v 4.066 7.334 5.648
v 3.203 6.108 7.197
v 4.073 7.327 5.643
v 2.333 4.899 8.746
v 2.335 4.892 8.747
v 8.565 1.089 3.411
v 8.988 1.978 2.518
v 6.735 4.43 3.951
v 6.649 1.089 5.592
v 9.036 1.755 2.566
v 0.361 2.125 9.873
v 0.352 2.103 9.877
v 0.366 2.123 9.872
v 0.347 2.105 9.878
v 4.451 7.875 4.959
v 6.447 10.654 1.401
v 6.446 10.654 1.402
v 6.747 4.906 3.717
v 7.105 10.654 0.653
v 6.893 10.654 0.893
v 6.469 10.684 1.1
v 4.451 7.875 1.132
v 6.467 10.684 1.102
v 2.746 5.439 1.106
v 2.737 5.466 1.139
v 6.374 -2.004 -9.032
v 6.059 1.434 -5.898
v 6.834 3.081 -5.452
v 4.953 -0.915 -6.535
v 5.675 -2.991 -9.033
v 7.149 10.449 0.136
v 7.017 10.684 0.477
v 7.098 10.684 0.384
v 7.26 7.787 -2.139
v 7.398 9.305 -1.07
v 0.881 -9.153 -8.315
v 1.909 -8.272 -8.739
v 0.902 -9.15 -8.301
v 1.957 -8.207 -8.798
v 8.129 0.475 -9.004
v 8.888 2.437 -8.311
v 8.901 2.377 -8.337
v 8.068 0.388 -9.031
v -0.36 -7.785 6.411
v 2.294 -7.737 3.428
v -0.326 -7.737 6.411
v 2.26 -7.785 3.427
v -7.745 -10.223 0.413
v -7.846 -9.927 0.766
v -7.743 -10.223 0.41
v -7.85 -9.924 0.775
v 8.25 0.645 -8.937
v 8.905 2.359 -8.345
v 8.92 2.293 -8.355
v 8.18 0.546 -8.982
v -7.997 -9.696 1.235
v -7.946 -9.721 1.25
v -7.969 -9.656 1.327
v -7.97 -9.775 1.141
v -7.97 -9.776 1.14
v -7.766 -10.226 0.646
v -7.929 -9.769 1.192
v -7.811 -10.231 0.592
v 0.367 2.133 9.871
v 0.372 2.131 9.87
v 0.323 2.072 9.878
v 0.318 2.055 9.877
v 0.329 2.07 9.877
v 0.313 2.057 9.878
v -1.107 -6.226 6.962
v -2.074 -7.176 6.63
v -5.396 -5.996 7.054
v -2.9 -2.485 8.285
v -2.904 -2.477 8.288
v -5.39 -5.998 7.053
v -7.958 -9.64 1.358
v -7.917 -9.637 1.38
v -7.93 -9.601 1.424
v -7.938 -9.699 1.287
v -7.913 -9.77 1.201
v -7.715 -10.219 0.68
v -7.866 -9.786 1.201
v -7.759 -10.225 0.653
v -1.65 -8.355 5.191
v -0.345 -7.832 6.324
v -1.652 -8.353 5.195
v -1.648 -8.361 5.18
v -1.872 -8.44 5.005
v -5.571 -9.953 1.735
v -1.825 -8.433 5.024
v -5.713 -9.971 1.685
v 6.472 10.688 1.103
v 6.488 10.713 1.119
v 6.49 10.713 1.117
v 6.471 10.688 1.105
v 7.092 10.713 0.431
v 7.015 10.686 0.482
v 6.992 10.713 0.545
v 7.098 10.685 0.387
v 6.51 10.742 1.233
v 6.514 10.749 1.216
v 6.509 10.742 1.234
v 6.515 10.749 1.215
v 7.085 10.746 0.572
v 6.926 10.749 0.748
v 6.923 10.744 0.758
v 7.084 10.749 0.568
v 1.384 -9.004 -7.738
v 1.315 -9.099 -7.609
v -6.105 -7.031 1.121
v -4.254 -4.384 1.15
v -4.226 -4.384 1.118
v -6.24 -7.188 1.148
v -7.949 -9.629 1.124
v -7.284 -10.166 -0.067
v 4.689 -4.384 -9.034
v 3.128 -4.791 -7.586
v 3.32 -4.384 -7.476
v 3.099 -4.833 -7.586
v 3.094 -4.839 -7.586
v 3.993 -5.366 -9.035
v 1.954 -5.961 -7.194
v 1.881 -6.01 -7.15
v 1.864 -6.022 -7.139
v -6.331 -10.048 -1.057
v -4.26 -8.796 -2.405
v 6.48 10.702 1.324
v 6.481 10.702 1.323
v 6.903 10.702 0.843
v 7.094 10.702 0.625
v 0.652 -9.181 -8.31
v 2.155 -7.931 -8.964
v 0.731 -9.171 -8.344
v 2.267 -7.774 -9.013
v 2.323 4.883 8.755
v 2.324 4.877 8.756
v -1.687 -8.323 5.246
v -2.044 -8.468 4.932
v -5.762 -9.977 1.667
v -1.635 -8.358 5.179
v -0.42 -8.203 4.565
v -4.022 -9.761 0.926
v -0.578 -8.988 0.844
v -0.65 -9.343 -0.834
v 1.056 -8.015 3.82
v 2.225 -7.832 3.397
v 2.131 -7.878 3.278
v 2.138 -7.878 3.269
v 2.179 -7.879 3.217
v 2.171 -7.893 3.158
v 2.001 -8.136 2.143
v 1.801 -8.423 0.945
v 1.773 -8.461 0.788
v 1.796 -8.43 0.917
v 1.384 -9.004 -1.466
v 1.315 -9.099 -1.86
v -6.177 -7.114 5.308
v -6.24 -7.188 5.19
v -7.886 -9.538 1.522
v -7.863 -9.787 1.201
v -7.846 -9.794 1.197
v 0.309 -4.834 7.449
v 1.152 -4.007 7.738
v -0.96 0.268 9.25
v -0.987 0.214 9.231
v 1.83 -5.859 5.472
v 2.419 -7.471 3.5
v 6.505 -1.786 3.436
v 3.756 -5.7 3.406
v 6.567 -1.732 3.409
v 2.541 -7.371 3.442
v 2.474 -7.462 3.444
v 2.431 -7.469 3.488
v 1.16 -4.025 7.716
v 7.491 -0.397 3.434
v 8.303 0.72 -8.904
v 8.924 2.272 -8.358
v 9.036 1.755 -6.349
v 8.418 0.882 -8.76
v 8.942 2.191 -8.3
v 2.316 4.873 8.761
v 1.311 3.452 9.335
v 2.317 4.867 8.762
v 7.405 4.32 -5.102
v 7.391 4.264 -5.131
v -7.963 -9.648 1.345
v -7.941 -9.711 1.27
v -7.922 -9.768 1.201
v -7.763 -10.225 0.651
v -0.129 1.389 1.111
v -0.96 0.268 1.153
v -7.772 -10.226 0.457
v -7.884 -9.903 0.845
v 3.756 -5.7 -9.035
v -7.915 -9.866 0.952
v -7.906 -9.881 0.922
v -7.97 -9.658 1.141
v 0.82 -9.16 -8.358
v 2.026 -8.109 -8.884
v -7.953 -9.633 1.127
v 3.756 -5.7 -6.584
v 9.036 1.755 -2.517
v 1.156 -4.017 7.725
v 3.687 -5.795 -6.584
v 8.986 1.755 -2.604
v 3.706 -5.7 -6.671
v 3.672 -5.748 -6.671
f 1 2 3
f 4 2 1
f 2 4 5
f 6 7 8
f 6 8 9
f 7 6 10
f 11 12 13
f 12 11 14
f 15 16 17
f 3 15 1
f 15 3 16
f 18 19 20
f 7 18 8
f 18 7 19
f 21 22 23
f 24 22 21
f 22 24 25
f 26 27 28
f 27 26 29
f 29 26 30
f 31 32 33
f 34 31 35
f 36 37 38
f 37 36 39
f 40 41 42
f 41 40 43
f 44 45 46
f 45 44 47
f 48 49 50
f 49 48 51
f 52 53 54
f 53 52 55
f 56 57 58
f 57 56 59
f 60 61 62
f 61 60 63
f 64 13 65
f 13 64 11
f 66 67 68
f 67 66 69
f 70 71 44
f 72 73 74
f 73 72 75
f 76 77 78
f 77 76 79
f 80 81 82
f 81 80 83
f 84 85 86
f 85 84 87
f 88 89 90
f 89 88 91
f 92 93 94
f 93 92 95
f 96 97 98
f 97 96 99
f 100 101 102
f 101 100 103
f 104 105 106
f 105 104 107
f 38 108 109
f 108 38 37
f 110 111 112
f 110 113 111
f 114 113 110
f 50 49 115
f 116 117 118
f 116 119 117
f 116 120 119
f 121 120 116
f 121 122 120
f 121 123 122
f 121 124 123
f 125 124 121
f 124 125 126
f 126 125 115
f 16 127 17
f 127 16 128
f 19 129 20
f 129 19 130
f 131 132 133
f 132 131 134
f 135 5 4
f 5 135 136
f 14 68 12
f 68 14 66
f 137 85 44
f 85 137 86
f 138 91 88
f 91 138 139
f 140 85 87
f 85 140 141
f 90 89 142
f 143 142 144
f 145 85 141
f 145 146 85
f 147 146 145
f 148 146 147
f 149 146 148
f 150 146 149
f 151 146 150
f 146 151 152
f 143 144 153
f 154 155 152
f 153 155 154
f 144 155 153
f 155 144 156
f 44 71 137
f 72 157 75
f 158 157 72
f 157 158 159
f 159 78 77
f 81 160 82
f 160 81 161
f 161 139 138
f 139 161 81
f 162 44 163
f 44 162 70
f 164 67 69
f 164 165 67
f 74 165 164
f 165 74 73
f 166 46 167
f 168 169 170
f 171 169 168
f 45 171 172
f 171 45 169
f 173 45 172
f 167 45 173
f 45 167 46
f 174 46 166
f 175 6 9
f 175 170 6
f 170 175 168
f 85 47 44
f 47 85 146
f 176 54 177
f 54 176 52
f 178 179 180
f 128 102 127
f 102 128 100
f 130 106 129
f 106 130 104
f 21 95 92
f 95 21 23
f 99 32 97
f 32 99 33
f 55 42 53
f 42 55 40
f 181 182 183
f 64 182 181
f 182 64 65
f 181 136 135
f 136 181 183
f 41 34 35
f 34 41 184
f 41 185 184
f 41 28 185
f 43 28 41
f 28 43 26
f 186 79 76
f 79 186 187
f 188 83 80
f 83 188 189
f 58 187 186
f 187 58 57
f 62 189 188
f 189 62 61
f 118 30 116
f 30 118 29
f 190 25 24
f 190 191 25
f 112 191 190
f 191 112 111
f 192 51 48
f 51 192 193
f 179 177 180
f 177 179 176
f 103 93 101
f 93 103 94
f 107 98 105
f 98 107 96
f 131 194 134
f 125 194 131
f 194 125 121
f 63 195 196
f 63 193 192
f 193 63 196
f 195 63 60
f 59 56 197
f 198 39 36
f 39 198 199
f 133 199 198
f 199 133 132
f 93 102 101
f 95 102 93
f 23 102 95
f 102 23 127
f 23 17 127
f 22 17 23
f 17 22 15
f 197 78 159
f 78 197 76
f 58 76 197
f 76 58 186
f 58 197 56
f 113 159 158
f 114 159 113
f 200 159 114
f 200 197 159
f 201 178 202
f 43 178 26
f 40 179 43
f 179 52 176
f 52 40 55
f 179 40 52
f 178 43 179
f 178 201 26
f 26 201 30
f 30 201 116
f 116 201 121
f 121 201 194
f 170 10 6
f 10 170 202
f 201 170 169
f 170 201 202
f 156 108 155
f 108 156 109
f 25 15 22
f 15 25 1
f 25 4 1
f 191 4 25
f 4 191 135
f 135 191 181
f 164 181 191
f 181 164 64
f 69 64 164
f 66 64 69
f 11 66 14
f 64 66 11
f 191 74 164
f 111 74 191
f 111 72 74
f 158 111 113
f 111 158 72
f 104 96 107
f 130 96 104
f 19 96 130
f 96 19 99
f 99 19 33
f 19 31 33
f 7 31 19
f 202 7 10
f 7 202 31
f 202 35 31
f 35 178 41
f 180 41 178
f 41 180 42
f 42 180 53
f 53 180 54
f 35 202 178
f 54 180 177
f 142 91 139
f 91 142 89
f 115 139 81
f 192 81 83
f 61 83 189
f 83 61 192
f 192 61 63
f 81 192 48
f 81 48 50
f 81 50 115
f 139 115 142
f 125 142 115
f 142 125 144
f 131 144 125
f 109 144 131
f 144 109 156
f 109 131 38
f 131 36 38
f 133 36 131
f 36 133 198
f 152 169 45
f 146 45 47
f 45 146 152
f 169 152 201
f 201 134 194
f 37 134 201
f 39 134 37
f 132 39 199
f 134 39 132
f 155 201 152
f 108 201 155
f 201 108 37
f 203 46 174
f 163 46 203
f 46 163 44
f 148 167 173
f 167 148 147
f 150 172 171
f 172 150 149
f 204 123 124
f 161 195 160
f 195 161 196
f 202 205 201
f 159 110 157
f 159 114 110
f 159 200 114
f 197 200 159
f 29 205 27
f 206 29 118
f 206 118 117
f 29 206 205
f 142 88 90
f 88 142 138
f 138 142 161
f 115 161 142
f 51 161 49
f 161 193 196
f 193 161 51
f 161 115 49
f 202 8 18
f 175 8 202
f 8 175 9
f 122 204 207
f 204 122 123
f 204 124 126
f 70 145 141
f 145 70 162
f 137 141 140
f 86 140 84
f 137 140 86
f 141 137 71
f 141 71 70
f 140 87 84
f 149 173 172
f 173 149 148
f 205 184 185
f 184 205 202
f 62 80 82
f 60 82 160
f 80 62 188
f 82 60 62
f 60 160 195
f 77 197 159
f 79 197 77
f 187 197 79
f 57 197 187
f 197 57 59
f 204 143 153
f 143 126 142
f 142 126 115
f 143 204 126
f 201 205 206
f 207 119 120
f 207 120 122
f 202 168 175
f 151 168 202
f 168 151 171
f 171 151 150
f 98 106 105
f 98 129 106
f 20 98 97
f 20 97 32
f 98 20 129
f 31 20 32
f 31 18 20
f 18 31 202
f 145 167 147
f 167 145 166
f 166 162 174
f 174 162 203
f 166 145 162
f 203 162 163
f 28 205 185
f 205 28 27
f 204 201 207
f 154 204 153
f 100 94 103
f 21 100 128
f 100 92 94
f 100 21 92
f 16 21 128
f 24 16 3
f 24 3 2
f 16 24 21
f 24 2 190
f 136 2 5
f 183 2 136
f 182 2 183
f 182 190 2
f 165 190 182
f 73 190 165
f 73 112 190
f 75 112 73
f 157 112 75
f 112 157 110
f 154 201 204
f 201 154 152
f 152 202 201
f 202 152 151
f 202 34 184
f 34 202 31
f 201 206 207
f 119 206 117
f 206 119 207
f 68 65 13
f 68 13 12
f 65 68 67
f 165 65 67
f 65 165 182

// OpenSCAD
// Auto-generated OpenSCAD file

    inner_points = 10*[[-0.5843169179657698, -0.6879231760558433, -0.9476863813058384], [-0.8215331245846192, -1.0182565838404067, -0.03411738499587125], [0.6903670649661048, 1.1119849418432066, 0.03411738499587125], [0.4531508583472553, 0.7816515340586432, 0.9476863813058384], [-0.04323343492736341, 0.07283869886099822, -1.3061135483231257], [-0.6159240181612884, -0.7246566943174167, 0.8994371127319727], [0.4847579585427739, 0.8183850523202166, -0.8994371127319727], [-0.08793262469115103, 0.02088965914180165, 1.3061135483231257], [0.36563737174037947, -0.5700346554462439, -0.6583956206905608], [0.12842116512152985, -0.9003680632308071, 0.25517337561940623], [0.8936287652105167, 0.17551169801297445, -0.251719185099408], [0.6564125585916671, -0.1548217097715889, 0.6618498112105591]];

    outer_points = 10*[[-0.9731118629091229, -0.4413118352277251, 0.7519334728152625], [-0.619892288935397, 0.4413118352277251, 1.0621130803228622], [0.619892288935397, -0.4413118352277251, -1.0621130803228622], [0.9731118629091229, 0.4413118352277251, -0.7519334728152625], [-0.7562957052968324, -1.0654210178425345, 0.0012814349347830545], [0.09645178068618293, 1.0654210178425345, 0.7501212501511937], [-0.09645178068618293, -1.0654210178425345, -0.7501212501511937], [0.7562957052968324, 1.0654210178425345, -0.0012814349347830545], [-0.03757443368860547, -0.7737087789198632, 0.632426191231289], [0.3156451402851202, 0.10891489153558698, 0.9426057987388886], [0.622269490922044, -0.7737087789198632, -0.11897649385468778], [0.9754890648957697, 0.10891489153558698, 0.19120311365291187]];

    // Convex hull for inner set (I)
    module inner_hull() {
        hull() {
            for (p = inner_points) {
                translate(p) sphere(r=0.1);
            }
        }
    }

    // Convex hull for outer set (O) minus inner hull (O \ I)
    module outer_minus_inner() {
        difference() {
            hull() {
                for (p = outer_points) {
                    translate(p) sphere(r=0.1);
                }
            }
            inner_hull(); // Subtract inner hull
        }
    }

    // Convex hull for outer set (O) minus all translated inner hulls
    module outer_minus_AllTranslationInner() {
        difference() {
            hull() {
                for (p = outer_points) {
                    translate(p) sphere(r=0.1);
                }
            }
            hull() {
                translate([0,0,50]) inner_hull();
                translate([0,0,-50]) inner_hull();
            }; // Subtract translated inner hulls
        }
    }

    // Difference between outer_minus_inner and outer_minus_AllTranslationInner
    module outer_minus_inner_diff() {
        difference() {
            // Outer minus inner
            difference() {
                hull() {
                    for (p = outer_points) {
                        translate(p) sphere(r=0.1);
                    }
                }
                inner_hull();
            }

            // Subtract Outer minus AllTranslationInner
            difference() {
                hull() {
                    for (p = outer_points) {
                        translate(p) sphere(r=0.1);
                    }
                }
                hull() {
                    translate([0,0,50]) inner_hull();
                    translate([0,0,-50]) inner_hull();
                };
            }
        }
    }

    // Rendering all with colors applied
    color([1, 1, 0, 1]) outer_minus_inner_diff(); // Opaque yellow
    
